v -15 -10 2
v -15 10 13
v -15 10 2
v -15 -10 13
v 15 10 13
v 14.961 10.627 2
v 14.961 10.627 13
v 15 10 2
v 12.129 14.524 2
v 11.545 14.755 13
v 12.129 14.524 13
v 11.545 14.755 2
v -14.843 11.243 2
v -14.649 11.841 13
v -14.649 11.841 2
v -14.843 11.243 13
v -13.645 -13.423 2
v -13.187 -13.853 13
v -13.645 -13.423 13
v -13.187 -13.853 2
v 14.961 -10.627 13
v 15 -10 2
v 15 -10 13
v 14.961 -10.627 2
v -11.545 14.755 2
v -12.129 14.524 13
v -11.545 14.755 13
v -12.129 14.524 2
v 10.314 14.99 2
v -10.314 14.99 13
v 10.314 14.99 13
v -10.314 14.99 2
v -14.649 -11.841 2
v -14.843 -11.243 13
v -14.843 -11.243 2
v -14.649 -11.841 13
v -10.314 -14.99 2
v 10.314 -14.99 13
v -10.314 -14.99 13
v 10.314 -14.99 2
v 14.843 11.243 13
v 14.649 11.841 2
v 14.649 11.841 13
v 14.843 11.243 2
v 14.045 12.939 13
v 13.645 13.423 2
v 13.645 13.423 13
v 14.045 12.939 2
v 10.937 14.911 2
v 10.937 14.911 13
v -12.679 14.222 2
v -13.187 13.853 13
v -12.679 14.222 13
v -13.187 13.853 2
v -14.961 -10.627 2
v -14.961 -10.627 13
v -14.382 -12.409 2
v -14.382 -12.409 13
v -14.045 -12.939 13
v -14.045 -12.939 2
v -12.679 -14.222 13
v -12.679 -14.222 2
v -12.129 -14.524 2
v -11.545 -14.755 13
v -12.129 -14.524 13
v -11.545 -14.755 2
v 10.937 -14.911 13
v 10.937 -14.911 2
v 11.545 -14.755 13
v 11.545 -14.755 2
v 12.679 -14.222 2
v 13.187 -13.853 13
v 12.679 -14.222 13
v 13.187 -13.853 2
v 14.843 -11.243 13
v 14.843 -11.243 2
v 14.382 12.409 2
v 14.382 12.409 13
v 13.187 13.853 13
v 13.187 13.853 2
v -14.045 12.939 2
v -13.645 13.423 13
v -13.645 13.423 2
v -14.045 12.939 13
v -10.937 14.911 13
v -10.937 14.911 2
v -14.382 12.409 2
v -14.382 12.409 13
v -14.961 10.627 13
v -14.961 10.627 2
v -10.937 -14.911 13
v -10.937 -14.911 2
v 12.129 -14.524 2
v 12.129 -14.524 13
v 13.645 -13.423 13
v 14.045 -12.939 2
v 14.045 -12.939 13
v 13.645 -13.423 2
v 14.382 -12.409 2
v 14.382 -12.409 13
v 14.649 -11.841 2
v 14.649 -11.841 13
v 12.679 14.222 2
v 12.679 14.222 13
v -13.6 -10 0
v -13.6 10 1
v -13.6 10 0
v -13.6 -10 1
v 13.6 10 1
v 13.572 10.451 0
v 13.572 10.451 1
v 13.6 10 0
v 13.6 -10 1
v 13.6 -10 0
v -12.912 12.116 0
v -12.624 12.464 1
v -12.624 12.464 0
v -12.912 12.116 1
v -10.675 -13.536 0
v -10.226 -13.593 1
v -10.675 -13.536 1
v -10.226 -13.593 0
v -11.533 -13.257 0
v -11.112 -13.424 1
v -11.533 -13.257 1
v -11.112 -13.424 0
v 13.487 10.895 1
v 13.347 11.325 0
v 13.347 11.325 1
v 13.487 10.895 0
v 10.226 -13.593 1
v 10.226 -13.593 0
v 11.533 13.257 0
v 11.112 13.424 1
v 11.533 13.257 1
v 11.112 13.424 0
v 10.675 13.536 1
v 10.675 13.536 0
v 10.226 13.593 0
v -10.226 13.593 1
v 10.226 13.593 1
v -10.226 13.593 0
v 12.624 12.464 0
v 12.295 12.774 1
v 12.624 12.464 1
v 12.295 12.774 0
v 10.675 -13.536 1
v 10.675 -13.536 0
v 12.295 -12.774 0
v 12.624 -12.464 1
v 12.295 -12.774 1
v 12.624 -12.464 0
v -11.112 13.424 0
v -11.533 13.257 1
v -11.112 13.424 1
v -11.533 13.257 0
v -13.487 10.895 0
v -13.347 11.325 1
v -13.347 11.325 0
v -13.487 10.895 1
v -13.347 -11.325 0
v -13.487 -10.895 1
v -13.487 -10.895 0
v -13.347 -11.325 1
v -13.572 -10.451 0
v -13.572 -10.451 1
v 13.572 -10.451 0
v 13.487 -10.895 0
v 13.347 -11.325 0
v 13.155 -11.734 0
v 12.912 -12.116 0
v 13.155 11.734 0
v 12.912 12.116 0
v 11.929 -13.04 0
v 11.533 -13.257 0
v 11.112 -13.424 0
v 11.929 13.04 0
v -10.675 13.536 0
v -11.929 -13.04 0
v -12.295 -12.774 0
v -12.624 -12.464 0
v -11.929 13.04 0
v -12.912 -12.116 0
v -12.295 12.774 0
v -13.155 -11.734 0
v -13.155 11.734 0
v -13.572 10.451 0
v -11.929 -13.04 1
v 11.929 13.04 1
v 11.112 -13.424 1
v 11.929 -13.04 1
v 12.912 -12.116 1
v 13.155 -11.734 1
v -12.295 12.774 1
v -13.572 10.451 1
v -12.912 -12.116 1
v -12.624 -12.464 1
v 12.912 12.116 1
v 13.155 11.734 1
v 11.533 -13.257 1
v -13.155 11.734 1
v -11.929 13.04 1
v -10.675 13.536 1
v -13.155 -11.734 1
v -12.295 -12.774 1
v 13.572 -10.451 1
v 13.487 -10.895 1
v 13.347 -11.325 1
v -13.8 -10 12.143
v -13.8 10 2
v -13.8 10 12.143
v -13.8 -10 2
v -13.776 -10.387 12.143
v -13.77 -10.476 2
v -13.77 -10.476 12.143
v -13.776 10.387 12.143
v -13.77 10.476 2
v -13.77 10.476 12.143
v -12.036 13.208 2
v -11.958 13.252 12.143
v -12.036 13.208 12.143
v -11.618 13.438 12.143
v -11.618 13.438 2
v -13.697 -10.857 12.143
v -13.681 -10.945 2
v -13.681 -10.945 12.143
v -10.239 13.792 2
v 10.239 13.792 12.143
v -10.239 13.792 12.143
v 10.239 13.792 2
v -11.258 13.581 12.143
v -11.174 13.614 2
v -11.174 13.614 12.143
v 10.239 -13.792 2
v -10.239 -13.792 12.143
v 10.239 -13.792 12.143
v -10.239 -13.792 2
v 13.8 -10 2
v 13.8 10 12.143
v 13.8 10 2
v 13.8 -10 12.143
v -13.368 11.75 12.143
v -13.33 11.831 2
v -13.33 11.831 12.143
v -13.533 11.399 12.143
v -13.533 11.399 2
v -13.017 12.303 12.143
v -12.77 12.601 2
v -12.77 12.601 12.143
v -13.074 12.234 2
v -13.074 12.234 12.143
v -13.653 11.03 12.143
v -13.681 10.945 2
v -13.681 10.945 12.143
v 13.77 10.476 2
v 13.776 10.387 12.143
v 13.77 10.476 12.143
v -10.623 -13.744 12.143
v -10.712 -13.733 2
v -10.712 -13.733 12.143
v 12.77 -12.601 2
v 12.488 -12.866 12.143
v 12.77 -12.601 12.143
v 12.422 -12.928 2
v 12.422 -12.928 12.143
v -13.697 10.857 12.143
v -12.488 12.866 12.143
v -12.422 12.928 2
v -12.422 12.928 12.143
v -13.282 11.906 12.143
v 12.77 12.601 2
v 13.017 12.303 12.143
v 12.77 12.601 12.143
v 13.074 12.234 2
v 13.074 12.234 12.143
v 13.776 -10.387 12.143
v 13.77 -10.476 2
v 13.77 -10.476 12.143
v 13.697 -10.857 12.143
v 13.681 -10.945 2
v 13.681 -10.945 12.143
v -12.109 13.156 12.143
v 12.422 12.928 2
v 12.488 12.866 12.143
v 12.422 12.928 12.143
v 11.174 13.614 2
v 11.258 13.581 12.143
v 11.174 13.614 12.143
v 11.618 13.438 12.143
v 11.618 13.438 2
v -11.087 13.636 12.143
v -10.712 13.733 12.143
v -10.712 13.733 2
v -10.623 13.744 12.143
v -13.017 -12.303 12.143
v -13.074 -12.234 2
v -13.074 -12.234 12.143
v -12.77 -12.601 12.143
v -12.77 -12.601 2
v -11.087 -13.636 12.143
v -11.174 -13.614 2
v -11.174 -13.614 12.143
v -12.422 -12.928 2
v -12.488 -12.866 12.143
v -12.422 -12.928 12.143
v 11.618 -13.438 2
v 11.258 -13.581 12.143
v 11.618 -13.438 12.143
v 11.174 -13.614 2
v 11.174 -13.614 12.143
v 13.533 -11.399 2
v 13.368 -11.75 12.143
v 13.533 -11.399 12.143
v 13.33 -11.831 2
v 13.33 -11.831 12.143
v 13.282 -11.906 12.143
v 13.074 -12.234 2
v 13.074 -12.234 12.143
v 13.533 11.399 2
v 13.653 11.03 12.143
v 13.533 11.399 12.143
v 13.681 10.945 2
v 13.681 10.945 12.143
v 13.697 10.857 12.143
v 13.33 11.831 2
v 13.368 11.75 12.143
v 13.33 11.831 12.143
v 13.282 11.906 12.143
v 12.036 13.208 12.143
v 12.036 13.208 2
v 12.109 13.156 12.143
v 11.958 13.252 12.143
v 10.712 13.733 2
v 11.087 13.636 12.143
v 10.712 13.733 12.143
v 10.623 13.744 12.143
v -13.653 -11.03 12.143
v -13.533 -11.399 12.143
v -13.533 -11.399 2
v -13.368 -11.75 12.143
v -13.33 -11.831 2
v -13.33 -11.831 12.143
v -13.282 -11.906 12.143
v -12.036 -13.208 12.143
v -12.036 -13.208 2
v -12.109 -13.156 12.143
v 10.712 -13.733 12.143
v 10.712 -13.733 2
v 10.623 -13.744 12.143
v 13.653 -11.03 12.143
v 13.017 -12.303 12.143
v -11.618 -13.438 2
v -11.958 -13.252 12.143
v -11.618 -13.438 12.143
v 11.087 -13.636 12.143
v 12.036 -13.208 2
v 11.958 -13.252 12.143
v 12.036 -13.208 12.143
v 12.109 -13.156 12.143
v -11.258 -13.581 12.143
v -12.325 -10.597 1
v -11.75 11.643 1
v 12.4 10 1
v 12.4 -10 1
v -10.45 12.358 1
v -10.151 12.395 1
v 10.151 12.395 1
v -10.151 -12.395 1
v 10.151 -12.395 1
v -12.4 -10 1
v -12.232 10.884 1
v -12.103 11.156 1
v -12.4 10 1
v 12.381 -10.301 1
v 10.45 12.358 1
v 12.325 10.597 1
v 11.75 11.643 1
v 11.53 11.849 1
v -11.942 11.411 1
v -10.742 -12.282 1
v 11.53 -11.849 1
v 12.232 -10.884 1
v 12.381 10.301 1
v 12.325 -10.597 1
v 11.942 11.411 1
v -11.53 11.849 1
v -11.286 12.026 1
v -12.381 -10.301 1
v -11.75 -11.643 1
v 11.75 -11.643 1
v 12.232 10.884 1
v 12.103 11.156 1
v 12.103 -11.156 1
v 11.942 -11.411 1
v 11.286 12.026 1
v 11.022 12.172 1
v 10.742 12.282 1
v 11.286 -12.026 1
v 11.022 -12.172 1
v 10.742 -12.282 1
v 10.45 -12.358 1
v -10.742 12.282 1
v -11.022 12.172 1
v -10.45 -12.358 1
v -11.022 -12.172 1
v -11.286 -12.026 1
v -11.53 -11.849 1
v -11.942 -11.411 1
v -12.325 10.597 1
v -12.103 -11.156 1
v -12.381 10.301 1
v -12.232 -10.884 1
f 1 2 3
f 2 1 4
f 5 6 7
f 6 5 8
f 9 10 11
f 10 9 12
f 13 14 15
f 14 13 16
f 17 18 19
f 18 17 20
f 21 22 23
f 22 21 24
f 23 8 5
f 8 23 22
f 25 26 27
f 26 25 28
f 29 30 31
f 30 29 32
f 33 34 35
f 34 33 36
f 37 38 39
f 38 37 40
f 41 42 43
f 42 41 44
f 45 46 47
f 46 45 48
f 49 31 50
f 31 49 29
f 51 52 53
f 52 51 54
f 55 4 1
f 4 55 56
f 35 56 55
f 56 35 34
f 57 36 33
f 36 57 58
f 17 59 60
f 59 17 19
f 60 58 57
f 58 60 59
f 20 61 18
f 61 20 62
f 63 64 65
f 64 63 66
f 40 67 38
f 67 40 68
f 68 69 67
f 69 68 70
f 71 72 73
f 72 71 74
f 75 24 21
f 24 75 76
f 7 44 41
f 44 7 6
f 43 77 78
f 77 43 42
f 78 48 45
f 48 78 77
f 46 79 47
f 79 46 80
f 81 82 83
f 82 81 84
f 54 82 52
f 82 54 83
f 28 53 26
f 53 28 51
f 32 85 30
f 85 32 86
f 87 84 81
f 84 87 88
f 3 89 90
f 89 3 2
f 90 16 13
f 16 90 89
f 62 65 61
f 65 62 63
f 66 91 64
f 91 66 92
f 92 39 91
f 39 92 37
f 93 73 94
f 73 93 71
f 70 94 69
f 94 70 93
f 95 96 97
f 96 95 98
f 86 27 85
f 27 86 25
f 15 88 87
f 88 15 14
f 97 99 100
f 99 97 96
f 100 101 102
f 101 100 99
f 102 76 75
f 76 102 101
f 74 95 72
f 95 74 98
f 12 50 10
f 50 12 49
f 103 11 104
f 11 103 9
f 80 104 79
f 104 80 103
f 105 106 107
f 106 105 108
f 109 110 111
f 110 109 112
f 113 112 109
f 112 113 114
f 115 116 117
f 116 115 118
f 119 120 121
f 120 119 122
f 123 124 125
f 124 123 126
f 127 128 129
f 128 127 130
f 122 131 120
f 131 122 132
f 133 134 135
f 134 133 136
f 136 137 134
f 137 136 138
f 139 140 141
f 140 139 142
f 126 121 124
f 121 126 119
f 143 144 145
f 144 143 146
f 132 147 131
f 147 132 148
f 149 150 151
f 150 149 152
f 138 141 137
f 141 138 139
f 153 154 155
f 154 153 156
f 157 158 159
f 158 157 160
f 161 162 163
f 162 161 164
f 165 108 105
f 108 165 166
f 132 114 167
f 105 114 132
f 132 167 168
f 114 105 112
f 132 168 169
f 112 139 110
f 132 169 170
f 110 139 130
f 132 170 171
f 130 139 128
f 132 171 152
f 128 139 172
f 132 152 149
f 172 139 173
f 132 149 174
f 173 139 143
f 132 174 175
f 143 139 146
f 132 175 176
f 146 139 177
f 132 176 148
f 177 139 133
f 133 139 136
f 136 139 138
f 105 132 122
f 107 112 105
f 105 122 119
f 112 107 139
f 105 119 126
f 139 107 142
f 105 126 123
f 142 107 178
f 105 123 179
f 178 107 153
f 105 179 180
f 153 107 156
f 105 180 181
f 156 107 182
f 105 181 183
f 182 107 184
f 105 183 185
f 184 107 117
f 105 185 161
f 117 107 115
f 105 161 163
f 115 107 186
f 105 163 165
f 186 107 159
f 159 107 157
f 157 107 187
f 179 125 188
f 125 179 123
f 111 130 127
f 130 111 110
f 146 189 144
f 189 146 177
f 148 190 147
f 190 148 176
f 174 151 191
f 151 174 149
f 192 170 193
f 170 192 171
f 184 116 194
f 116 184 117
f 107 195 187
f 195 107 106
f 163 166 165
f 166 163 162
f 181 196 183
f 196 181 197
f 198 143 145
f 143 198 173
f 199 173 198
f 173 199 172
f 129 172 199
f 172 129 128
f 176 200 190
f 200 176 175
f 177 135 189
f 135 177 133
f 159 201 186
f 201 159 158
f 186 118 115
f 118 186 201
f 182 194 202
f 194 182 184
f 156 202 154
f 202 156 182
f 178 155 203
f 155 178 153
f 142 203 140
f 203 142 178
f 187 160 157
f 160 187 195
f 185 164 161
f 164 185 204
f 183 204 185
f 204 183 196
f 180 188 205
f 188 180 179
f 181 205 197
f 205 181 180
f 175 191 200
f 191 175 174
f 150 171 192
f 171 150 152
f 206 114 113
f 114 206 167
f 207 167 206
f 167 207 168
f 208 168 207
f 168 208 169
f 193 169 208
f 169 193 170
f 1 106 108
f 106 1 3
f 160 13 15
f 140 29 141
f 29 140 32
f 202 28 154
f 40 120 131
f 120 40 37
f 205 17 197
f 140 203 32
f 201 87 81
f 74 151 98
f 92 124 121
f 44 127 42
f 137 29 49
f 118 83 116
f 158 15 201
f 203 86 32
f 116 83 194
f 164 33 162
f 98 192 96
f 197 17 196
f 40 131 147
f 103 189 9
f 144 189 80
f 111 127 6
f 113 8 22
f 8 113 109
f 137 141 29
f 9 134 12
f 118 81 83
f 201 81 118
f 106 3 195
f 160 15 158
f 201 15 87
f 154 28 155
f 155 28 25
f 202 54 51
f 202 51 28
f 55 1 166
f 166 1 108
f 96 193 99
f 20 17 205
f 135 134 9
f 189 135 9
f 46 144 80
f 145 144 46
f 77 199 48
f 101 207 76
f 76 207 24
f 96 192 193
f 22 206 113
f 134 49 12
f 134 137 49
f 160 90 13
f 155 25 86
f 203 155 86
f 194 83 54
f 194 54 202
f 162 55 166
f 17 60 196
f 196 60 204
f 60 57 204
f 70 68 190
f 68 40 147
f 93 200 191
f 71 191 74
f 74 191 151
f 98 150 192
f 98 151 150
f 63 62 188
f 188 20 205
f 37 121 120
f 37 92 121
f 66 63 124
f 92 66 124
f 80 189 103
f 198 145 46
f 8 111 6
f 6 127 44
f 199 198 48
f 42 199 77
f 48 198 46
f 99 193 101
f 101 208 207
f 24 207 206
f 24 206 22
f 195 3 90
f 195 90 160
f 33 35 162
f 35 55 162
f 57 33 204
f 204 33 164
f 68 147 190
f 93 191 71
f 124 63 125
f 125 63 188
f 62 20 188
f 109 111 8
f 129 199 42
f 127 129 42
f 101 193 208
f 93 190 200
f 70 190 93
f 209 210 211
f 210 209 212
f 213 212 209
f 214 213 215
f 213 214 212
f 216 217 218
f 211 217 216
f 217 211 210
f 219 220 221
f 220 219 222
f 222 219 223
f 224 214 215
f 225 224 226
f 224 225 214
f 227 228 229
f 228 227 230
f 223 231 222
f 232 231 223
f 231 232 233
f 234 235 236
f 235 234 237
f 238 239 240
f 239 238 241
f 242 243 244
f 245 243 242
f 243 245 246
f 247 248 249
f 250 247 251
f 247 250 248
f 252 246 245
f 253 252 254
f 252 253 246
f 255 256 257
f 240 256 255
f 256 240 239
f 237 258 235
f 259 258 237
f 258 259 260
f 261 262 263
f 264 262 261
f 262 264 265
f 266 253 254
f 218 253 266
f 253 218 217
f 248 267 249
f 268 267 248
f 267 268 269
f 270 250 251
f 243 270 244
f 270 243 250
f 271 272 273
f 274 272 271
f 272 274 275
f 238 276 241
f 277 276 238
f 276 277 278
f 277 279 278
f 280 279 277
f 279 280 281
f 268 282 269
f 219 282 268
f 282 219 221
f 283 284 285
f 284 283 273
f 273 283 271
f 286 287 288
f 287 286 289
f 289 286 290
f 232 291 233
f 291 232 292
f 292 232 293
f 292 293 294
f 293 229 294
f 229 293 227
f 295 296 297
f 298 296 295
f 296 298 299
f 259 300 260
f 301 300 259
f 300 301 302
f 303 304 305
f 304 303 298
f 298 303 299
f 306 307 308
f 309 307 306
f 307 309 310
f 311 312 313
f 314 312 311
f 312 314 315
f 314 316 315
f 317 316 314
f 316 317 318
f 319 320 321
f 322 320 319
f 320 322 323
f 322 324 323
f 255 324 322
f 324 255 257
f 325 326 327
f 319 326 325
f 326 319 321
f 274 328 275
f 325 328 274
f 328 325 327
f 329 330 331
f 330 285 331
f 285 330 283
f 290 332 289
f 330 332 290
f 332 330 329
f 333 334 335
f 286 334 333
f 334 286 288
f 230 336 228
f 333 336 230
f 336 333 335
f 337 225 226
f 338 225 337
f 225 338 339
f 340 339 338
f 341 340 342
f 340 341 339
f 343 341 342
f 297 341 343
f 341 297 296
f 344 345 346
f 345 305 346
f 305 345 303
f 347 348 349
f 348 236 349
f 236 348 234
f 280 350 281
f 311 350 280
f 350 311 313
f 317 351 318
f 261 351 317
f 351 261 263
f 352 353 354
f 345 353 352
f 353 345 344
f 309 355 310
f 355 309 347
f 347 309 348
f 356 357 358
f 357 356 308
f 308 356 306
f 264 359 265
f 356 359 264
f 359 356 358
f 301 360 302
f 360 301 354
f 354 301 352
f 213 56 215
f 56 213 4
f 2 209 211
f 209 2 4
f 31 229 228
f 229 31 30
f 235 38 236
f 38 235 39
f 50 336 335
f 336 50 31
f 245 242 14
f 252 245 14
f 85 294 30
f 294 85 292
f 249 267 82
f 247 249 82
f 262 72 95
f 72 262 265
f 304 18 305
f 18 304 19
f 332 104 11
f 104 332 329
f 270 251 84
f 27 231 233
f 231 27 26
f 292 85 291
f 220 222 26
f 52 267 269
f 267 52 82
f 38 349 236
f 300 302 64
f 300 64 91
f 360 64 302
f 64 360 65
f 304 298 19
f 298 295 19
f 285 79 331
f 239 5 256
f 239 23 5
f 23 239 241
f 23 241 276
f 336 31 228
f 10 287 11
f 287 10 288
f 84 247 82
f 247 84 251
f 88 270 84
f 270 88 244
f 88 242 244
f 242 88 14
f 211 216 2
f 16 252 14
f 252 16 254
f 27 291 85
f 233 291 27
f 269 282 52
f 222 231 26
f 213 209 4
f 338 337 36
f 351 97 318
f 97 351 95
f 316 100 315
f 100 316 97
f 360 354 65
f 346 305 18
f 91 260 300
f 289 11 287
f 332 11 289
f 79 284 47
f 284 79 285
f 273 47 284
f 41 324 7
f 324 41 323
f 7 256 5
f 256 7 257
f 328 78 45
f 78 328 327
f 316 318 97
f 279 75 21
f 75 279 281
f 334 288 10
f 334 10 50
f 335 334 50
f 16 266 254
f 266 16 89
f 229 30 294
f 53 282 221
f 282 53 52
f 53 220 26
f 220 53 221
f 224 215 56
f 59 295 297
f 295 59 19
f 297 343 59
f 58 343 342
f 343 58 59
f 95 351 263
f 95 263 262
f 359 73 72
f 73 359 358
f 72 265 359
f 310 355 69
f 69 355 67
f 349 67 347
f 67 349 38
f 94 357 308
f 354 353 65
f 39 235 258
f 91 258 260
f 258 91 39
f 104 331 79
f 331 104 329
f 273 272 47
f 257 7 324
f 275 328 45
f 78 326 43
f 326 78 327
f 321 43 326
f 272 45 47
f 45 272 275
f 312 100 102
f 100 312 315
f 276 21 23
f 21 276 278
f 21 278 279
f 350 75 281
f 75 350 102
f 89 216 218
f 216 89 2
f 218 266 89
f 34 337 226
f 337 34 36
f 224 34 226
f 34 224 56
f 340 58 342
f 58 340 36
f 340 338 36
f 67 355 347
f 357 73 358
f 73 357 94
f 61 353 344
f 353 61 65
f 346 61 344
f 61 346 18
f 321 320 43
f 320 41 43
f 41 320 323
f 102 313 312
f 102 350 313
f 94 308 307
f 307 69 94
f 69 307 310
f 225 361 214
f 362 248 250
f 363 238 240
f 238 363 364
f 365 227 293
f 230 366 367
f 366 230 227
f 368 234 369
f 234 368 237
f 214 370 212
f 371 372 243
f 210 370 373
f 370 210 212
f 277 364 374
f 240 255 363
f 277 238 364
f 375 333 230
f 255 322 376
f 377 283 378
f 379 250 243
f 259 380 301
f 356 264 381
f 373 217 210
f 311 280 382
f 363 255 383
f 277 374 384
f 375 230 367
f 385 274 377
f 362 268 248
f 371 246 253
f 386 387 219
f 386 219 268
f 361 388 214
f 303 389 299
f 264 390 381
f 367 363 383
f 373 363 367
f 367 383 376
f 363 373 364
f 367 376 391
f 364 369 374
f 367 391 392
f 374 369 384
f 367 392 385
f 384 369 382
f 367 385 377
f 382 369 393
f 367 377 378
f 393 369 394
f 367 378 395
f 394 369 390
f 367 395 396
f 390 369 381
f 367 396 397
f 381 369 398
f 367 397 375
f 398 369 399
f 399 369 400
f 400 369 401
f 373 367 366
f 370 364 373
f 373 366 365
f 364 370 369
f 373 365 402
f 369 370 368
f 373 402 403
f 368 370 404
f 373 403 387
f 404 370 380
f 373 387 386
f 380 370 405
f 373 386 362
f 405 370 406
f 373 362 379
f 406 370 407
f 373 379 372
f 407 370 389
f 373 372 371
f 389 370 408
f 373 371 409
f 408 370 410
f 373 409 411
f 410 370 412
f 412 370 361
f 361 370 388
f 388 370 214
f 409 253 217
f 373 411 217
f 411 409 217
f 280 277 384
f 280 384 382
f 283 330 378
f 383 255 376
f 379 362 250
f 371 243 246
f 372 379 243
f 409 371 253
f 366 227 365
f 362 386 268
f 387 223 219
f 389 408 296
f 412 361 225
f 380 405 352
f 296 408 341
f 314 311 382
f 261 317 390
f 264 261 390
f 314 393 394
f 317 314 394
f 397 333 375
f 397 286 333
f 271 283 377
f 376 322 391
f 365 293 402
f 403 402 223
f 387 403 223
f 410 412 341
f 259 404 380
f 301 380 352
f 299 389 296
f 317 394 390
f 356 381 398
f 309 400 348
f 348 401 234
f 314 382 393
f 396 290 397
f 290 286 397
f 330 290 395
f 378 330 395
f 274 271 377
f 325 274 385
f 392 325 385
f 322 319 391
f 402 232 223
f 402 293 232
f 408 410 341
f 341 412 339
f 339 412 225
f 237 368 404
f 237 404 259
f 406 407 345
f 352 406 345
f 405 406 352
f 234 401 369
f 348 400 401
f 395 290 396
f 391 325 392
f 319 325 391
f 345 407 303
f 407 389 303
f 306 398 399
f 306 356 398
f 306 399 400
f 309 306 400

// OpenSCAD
$fn = 50;


difference() {
	union() {
		translate(v = [0, 0, 2]) {
			hull() {
				translate(v = [-10.0000000000, 10.0000000000, 0]) {
					cylinder(h = 11, r = 5);
				}
				translate(v = [10.0000000000, 10.0000000000, 0]) {
					cylinder(h = 11, r = 5);
				}
				translate(v = [-10.0000000000, -10.0000000000, 0]) {
					cylinder(h = 11, r = 5);
				}
				translate(v = [10.0000000000, -10.0000000000, 0]) {
					cylinder(h = 11, r = 5);
				}
			}
		}
		hull() {
			translate(v = [-10.0000000000, 10.0000000000, 0]) {
				cylinder(h = 1, r = 3.6000000000);
			}
			translate(v = [10.0000000000, 10.0000000000, 0]) {
				cylinder(h = 1, r = 3.6000000000);
			}
			translate(v = [-10.0000000000, -10.0000000000, 0]) {
				cylinder(h = 1, r = 3.6000000000);
			}
			translate(v = [10.0000000000, -10.0000000000, 0]) {
				cylinder(h = 1, r = 3.6000000000);
			}
		}
		translate(v = [0, 0, 1]) {
			hull() {
				translate(v = [-10.0000000000, 10.0000000000, 0]) {
					cylinder(h = 1, r1 = 3.6000000000, r2 = 5.0000000000);
				}
				translate(v = [10.0000000000, 10.0000000000, 0]) {
					cylinder(h = 1, r1 = 3.6000000000, r2 = 5.0000000000);
				}
				translate(v = [-10.0000000000, -10.0000000000, 0]) {
					cylinder(h = 1, r1 = 3.6000000000, r2 = 5.0000000000);
				}
				translate(v = [10.0000000000, -10.0000000000, 0]) {
					cylinder(h = 1, r1 = 3.6000000000, r2 = 5.0000000000);
				}
			}
		}
	}
	union() {
		translate(v = [0, 0, 2]) {
			#hull() {
				translate(v = [-10.0000000000, 10.0000000000, 0]) {
					cylinder(h = 11, r = 3.8000000000);
				}
				translate(v = [10.0000000000, 10.0000000000, 0]) {
					cylinder(h = 11, r = 3.8000000000);
				}
				translate(v = [-10.0000000000, -10.0000000000, 0]) {
					cylinder(h = 11, r = 3.8000000000);
				}
				translate(v = [10.0000000000, -10.0000000000, 0]) {
					cylinder(h = 11, r = 3.8000000000);
				}
			}
		}
		translate(v = [0, 0, 12]) {
			hull() {
				translate(v = [-10.0000000000, 10.0000000000, 0]) {
					cylinder(h = 1, r1 = 3.6000000000, r2 = 5.0000000000);
				}
				translate(v = [10.0000000000, 10.0000000000, 0]) {
					cylinder(h = 1, r1 = 3.6000000000, r2 = 5.0000000000);
				}
				translate(v = [-10.0000000000, -10.0000000000, 0]) {
					cylinder(h = 1, r1 = 3.6000000000, r2 = 5.0000000000);
				}
				translate(v = [10.0000000000, -10.0000000000, 0]) {
					cylinder(h = 1, r1 = 3.6000000000, r2 = 5.0000000000);
				}
			}
		}
		translate(v = [0, 0, 1]) {
			#hull() {
				translate(v = [-10.0000000000, 10.0000000000, 0]) {
					cylinder(h = 1, r1 = 2.4000000000, r2 = 3.8000000000);
				}
				translate(v = [10.0000000000, 10.0000000000, 0]) {
					cylinder(h = 1, r1 = 2.4000000000, r2 = 3.8000000000);
				}
				translate(v = [-10.0000000000, -10.0000000000, 0]) {
					cylinder(h = 1, r1 = 2.4000000000, r2 = 3.8000000000);
				}
				translate(v = [10.0000000000, -10.0000000000, 0]) {
					cylinder(h = 1, r1 = 2.4000000000, r2 = 3.8000000000);
				}
			}
		}
	}
}
